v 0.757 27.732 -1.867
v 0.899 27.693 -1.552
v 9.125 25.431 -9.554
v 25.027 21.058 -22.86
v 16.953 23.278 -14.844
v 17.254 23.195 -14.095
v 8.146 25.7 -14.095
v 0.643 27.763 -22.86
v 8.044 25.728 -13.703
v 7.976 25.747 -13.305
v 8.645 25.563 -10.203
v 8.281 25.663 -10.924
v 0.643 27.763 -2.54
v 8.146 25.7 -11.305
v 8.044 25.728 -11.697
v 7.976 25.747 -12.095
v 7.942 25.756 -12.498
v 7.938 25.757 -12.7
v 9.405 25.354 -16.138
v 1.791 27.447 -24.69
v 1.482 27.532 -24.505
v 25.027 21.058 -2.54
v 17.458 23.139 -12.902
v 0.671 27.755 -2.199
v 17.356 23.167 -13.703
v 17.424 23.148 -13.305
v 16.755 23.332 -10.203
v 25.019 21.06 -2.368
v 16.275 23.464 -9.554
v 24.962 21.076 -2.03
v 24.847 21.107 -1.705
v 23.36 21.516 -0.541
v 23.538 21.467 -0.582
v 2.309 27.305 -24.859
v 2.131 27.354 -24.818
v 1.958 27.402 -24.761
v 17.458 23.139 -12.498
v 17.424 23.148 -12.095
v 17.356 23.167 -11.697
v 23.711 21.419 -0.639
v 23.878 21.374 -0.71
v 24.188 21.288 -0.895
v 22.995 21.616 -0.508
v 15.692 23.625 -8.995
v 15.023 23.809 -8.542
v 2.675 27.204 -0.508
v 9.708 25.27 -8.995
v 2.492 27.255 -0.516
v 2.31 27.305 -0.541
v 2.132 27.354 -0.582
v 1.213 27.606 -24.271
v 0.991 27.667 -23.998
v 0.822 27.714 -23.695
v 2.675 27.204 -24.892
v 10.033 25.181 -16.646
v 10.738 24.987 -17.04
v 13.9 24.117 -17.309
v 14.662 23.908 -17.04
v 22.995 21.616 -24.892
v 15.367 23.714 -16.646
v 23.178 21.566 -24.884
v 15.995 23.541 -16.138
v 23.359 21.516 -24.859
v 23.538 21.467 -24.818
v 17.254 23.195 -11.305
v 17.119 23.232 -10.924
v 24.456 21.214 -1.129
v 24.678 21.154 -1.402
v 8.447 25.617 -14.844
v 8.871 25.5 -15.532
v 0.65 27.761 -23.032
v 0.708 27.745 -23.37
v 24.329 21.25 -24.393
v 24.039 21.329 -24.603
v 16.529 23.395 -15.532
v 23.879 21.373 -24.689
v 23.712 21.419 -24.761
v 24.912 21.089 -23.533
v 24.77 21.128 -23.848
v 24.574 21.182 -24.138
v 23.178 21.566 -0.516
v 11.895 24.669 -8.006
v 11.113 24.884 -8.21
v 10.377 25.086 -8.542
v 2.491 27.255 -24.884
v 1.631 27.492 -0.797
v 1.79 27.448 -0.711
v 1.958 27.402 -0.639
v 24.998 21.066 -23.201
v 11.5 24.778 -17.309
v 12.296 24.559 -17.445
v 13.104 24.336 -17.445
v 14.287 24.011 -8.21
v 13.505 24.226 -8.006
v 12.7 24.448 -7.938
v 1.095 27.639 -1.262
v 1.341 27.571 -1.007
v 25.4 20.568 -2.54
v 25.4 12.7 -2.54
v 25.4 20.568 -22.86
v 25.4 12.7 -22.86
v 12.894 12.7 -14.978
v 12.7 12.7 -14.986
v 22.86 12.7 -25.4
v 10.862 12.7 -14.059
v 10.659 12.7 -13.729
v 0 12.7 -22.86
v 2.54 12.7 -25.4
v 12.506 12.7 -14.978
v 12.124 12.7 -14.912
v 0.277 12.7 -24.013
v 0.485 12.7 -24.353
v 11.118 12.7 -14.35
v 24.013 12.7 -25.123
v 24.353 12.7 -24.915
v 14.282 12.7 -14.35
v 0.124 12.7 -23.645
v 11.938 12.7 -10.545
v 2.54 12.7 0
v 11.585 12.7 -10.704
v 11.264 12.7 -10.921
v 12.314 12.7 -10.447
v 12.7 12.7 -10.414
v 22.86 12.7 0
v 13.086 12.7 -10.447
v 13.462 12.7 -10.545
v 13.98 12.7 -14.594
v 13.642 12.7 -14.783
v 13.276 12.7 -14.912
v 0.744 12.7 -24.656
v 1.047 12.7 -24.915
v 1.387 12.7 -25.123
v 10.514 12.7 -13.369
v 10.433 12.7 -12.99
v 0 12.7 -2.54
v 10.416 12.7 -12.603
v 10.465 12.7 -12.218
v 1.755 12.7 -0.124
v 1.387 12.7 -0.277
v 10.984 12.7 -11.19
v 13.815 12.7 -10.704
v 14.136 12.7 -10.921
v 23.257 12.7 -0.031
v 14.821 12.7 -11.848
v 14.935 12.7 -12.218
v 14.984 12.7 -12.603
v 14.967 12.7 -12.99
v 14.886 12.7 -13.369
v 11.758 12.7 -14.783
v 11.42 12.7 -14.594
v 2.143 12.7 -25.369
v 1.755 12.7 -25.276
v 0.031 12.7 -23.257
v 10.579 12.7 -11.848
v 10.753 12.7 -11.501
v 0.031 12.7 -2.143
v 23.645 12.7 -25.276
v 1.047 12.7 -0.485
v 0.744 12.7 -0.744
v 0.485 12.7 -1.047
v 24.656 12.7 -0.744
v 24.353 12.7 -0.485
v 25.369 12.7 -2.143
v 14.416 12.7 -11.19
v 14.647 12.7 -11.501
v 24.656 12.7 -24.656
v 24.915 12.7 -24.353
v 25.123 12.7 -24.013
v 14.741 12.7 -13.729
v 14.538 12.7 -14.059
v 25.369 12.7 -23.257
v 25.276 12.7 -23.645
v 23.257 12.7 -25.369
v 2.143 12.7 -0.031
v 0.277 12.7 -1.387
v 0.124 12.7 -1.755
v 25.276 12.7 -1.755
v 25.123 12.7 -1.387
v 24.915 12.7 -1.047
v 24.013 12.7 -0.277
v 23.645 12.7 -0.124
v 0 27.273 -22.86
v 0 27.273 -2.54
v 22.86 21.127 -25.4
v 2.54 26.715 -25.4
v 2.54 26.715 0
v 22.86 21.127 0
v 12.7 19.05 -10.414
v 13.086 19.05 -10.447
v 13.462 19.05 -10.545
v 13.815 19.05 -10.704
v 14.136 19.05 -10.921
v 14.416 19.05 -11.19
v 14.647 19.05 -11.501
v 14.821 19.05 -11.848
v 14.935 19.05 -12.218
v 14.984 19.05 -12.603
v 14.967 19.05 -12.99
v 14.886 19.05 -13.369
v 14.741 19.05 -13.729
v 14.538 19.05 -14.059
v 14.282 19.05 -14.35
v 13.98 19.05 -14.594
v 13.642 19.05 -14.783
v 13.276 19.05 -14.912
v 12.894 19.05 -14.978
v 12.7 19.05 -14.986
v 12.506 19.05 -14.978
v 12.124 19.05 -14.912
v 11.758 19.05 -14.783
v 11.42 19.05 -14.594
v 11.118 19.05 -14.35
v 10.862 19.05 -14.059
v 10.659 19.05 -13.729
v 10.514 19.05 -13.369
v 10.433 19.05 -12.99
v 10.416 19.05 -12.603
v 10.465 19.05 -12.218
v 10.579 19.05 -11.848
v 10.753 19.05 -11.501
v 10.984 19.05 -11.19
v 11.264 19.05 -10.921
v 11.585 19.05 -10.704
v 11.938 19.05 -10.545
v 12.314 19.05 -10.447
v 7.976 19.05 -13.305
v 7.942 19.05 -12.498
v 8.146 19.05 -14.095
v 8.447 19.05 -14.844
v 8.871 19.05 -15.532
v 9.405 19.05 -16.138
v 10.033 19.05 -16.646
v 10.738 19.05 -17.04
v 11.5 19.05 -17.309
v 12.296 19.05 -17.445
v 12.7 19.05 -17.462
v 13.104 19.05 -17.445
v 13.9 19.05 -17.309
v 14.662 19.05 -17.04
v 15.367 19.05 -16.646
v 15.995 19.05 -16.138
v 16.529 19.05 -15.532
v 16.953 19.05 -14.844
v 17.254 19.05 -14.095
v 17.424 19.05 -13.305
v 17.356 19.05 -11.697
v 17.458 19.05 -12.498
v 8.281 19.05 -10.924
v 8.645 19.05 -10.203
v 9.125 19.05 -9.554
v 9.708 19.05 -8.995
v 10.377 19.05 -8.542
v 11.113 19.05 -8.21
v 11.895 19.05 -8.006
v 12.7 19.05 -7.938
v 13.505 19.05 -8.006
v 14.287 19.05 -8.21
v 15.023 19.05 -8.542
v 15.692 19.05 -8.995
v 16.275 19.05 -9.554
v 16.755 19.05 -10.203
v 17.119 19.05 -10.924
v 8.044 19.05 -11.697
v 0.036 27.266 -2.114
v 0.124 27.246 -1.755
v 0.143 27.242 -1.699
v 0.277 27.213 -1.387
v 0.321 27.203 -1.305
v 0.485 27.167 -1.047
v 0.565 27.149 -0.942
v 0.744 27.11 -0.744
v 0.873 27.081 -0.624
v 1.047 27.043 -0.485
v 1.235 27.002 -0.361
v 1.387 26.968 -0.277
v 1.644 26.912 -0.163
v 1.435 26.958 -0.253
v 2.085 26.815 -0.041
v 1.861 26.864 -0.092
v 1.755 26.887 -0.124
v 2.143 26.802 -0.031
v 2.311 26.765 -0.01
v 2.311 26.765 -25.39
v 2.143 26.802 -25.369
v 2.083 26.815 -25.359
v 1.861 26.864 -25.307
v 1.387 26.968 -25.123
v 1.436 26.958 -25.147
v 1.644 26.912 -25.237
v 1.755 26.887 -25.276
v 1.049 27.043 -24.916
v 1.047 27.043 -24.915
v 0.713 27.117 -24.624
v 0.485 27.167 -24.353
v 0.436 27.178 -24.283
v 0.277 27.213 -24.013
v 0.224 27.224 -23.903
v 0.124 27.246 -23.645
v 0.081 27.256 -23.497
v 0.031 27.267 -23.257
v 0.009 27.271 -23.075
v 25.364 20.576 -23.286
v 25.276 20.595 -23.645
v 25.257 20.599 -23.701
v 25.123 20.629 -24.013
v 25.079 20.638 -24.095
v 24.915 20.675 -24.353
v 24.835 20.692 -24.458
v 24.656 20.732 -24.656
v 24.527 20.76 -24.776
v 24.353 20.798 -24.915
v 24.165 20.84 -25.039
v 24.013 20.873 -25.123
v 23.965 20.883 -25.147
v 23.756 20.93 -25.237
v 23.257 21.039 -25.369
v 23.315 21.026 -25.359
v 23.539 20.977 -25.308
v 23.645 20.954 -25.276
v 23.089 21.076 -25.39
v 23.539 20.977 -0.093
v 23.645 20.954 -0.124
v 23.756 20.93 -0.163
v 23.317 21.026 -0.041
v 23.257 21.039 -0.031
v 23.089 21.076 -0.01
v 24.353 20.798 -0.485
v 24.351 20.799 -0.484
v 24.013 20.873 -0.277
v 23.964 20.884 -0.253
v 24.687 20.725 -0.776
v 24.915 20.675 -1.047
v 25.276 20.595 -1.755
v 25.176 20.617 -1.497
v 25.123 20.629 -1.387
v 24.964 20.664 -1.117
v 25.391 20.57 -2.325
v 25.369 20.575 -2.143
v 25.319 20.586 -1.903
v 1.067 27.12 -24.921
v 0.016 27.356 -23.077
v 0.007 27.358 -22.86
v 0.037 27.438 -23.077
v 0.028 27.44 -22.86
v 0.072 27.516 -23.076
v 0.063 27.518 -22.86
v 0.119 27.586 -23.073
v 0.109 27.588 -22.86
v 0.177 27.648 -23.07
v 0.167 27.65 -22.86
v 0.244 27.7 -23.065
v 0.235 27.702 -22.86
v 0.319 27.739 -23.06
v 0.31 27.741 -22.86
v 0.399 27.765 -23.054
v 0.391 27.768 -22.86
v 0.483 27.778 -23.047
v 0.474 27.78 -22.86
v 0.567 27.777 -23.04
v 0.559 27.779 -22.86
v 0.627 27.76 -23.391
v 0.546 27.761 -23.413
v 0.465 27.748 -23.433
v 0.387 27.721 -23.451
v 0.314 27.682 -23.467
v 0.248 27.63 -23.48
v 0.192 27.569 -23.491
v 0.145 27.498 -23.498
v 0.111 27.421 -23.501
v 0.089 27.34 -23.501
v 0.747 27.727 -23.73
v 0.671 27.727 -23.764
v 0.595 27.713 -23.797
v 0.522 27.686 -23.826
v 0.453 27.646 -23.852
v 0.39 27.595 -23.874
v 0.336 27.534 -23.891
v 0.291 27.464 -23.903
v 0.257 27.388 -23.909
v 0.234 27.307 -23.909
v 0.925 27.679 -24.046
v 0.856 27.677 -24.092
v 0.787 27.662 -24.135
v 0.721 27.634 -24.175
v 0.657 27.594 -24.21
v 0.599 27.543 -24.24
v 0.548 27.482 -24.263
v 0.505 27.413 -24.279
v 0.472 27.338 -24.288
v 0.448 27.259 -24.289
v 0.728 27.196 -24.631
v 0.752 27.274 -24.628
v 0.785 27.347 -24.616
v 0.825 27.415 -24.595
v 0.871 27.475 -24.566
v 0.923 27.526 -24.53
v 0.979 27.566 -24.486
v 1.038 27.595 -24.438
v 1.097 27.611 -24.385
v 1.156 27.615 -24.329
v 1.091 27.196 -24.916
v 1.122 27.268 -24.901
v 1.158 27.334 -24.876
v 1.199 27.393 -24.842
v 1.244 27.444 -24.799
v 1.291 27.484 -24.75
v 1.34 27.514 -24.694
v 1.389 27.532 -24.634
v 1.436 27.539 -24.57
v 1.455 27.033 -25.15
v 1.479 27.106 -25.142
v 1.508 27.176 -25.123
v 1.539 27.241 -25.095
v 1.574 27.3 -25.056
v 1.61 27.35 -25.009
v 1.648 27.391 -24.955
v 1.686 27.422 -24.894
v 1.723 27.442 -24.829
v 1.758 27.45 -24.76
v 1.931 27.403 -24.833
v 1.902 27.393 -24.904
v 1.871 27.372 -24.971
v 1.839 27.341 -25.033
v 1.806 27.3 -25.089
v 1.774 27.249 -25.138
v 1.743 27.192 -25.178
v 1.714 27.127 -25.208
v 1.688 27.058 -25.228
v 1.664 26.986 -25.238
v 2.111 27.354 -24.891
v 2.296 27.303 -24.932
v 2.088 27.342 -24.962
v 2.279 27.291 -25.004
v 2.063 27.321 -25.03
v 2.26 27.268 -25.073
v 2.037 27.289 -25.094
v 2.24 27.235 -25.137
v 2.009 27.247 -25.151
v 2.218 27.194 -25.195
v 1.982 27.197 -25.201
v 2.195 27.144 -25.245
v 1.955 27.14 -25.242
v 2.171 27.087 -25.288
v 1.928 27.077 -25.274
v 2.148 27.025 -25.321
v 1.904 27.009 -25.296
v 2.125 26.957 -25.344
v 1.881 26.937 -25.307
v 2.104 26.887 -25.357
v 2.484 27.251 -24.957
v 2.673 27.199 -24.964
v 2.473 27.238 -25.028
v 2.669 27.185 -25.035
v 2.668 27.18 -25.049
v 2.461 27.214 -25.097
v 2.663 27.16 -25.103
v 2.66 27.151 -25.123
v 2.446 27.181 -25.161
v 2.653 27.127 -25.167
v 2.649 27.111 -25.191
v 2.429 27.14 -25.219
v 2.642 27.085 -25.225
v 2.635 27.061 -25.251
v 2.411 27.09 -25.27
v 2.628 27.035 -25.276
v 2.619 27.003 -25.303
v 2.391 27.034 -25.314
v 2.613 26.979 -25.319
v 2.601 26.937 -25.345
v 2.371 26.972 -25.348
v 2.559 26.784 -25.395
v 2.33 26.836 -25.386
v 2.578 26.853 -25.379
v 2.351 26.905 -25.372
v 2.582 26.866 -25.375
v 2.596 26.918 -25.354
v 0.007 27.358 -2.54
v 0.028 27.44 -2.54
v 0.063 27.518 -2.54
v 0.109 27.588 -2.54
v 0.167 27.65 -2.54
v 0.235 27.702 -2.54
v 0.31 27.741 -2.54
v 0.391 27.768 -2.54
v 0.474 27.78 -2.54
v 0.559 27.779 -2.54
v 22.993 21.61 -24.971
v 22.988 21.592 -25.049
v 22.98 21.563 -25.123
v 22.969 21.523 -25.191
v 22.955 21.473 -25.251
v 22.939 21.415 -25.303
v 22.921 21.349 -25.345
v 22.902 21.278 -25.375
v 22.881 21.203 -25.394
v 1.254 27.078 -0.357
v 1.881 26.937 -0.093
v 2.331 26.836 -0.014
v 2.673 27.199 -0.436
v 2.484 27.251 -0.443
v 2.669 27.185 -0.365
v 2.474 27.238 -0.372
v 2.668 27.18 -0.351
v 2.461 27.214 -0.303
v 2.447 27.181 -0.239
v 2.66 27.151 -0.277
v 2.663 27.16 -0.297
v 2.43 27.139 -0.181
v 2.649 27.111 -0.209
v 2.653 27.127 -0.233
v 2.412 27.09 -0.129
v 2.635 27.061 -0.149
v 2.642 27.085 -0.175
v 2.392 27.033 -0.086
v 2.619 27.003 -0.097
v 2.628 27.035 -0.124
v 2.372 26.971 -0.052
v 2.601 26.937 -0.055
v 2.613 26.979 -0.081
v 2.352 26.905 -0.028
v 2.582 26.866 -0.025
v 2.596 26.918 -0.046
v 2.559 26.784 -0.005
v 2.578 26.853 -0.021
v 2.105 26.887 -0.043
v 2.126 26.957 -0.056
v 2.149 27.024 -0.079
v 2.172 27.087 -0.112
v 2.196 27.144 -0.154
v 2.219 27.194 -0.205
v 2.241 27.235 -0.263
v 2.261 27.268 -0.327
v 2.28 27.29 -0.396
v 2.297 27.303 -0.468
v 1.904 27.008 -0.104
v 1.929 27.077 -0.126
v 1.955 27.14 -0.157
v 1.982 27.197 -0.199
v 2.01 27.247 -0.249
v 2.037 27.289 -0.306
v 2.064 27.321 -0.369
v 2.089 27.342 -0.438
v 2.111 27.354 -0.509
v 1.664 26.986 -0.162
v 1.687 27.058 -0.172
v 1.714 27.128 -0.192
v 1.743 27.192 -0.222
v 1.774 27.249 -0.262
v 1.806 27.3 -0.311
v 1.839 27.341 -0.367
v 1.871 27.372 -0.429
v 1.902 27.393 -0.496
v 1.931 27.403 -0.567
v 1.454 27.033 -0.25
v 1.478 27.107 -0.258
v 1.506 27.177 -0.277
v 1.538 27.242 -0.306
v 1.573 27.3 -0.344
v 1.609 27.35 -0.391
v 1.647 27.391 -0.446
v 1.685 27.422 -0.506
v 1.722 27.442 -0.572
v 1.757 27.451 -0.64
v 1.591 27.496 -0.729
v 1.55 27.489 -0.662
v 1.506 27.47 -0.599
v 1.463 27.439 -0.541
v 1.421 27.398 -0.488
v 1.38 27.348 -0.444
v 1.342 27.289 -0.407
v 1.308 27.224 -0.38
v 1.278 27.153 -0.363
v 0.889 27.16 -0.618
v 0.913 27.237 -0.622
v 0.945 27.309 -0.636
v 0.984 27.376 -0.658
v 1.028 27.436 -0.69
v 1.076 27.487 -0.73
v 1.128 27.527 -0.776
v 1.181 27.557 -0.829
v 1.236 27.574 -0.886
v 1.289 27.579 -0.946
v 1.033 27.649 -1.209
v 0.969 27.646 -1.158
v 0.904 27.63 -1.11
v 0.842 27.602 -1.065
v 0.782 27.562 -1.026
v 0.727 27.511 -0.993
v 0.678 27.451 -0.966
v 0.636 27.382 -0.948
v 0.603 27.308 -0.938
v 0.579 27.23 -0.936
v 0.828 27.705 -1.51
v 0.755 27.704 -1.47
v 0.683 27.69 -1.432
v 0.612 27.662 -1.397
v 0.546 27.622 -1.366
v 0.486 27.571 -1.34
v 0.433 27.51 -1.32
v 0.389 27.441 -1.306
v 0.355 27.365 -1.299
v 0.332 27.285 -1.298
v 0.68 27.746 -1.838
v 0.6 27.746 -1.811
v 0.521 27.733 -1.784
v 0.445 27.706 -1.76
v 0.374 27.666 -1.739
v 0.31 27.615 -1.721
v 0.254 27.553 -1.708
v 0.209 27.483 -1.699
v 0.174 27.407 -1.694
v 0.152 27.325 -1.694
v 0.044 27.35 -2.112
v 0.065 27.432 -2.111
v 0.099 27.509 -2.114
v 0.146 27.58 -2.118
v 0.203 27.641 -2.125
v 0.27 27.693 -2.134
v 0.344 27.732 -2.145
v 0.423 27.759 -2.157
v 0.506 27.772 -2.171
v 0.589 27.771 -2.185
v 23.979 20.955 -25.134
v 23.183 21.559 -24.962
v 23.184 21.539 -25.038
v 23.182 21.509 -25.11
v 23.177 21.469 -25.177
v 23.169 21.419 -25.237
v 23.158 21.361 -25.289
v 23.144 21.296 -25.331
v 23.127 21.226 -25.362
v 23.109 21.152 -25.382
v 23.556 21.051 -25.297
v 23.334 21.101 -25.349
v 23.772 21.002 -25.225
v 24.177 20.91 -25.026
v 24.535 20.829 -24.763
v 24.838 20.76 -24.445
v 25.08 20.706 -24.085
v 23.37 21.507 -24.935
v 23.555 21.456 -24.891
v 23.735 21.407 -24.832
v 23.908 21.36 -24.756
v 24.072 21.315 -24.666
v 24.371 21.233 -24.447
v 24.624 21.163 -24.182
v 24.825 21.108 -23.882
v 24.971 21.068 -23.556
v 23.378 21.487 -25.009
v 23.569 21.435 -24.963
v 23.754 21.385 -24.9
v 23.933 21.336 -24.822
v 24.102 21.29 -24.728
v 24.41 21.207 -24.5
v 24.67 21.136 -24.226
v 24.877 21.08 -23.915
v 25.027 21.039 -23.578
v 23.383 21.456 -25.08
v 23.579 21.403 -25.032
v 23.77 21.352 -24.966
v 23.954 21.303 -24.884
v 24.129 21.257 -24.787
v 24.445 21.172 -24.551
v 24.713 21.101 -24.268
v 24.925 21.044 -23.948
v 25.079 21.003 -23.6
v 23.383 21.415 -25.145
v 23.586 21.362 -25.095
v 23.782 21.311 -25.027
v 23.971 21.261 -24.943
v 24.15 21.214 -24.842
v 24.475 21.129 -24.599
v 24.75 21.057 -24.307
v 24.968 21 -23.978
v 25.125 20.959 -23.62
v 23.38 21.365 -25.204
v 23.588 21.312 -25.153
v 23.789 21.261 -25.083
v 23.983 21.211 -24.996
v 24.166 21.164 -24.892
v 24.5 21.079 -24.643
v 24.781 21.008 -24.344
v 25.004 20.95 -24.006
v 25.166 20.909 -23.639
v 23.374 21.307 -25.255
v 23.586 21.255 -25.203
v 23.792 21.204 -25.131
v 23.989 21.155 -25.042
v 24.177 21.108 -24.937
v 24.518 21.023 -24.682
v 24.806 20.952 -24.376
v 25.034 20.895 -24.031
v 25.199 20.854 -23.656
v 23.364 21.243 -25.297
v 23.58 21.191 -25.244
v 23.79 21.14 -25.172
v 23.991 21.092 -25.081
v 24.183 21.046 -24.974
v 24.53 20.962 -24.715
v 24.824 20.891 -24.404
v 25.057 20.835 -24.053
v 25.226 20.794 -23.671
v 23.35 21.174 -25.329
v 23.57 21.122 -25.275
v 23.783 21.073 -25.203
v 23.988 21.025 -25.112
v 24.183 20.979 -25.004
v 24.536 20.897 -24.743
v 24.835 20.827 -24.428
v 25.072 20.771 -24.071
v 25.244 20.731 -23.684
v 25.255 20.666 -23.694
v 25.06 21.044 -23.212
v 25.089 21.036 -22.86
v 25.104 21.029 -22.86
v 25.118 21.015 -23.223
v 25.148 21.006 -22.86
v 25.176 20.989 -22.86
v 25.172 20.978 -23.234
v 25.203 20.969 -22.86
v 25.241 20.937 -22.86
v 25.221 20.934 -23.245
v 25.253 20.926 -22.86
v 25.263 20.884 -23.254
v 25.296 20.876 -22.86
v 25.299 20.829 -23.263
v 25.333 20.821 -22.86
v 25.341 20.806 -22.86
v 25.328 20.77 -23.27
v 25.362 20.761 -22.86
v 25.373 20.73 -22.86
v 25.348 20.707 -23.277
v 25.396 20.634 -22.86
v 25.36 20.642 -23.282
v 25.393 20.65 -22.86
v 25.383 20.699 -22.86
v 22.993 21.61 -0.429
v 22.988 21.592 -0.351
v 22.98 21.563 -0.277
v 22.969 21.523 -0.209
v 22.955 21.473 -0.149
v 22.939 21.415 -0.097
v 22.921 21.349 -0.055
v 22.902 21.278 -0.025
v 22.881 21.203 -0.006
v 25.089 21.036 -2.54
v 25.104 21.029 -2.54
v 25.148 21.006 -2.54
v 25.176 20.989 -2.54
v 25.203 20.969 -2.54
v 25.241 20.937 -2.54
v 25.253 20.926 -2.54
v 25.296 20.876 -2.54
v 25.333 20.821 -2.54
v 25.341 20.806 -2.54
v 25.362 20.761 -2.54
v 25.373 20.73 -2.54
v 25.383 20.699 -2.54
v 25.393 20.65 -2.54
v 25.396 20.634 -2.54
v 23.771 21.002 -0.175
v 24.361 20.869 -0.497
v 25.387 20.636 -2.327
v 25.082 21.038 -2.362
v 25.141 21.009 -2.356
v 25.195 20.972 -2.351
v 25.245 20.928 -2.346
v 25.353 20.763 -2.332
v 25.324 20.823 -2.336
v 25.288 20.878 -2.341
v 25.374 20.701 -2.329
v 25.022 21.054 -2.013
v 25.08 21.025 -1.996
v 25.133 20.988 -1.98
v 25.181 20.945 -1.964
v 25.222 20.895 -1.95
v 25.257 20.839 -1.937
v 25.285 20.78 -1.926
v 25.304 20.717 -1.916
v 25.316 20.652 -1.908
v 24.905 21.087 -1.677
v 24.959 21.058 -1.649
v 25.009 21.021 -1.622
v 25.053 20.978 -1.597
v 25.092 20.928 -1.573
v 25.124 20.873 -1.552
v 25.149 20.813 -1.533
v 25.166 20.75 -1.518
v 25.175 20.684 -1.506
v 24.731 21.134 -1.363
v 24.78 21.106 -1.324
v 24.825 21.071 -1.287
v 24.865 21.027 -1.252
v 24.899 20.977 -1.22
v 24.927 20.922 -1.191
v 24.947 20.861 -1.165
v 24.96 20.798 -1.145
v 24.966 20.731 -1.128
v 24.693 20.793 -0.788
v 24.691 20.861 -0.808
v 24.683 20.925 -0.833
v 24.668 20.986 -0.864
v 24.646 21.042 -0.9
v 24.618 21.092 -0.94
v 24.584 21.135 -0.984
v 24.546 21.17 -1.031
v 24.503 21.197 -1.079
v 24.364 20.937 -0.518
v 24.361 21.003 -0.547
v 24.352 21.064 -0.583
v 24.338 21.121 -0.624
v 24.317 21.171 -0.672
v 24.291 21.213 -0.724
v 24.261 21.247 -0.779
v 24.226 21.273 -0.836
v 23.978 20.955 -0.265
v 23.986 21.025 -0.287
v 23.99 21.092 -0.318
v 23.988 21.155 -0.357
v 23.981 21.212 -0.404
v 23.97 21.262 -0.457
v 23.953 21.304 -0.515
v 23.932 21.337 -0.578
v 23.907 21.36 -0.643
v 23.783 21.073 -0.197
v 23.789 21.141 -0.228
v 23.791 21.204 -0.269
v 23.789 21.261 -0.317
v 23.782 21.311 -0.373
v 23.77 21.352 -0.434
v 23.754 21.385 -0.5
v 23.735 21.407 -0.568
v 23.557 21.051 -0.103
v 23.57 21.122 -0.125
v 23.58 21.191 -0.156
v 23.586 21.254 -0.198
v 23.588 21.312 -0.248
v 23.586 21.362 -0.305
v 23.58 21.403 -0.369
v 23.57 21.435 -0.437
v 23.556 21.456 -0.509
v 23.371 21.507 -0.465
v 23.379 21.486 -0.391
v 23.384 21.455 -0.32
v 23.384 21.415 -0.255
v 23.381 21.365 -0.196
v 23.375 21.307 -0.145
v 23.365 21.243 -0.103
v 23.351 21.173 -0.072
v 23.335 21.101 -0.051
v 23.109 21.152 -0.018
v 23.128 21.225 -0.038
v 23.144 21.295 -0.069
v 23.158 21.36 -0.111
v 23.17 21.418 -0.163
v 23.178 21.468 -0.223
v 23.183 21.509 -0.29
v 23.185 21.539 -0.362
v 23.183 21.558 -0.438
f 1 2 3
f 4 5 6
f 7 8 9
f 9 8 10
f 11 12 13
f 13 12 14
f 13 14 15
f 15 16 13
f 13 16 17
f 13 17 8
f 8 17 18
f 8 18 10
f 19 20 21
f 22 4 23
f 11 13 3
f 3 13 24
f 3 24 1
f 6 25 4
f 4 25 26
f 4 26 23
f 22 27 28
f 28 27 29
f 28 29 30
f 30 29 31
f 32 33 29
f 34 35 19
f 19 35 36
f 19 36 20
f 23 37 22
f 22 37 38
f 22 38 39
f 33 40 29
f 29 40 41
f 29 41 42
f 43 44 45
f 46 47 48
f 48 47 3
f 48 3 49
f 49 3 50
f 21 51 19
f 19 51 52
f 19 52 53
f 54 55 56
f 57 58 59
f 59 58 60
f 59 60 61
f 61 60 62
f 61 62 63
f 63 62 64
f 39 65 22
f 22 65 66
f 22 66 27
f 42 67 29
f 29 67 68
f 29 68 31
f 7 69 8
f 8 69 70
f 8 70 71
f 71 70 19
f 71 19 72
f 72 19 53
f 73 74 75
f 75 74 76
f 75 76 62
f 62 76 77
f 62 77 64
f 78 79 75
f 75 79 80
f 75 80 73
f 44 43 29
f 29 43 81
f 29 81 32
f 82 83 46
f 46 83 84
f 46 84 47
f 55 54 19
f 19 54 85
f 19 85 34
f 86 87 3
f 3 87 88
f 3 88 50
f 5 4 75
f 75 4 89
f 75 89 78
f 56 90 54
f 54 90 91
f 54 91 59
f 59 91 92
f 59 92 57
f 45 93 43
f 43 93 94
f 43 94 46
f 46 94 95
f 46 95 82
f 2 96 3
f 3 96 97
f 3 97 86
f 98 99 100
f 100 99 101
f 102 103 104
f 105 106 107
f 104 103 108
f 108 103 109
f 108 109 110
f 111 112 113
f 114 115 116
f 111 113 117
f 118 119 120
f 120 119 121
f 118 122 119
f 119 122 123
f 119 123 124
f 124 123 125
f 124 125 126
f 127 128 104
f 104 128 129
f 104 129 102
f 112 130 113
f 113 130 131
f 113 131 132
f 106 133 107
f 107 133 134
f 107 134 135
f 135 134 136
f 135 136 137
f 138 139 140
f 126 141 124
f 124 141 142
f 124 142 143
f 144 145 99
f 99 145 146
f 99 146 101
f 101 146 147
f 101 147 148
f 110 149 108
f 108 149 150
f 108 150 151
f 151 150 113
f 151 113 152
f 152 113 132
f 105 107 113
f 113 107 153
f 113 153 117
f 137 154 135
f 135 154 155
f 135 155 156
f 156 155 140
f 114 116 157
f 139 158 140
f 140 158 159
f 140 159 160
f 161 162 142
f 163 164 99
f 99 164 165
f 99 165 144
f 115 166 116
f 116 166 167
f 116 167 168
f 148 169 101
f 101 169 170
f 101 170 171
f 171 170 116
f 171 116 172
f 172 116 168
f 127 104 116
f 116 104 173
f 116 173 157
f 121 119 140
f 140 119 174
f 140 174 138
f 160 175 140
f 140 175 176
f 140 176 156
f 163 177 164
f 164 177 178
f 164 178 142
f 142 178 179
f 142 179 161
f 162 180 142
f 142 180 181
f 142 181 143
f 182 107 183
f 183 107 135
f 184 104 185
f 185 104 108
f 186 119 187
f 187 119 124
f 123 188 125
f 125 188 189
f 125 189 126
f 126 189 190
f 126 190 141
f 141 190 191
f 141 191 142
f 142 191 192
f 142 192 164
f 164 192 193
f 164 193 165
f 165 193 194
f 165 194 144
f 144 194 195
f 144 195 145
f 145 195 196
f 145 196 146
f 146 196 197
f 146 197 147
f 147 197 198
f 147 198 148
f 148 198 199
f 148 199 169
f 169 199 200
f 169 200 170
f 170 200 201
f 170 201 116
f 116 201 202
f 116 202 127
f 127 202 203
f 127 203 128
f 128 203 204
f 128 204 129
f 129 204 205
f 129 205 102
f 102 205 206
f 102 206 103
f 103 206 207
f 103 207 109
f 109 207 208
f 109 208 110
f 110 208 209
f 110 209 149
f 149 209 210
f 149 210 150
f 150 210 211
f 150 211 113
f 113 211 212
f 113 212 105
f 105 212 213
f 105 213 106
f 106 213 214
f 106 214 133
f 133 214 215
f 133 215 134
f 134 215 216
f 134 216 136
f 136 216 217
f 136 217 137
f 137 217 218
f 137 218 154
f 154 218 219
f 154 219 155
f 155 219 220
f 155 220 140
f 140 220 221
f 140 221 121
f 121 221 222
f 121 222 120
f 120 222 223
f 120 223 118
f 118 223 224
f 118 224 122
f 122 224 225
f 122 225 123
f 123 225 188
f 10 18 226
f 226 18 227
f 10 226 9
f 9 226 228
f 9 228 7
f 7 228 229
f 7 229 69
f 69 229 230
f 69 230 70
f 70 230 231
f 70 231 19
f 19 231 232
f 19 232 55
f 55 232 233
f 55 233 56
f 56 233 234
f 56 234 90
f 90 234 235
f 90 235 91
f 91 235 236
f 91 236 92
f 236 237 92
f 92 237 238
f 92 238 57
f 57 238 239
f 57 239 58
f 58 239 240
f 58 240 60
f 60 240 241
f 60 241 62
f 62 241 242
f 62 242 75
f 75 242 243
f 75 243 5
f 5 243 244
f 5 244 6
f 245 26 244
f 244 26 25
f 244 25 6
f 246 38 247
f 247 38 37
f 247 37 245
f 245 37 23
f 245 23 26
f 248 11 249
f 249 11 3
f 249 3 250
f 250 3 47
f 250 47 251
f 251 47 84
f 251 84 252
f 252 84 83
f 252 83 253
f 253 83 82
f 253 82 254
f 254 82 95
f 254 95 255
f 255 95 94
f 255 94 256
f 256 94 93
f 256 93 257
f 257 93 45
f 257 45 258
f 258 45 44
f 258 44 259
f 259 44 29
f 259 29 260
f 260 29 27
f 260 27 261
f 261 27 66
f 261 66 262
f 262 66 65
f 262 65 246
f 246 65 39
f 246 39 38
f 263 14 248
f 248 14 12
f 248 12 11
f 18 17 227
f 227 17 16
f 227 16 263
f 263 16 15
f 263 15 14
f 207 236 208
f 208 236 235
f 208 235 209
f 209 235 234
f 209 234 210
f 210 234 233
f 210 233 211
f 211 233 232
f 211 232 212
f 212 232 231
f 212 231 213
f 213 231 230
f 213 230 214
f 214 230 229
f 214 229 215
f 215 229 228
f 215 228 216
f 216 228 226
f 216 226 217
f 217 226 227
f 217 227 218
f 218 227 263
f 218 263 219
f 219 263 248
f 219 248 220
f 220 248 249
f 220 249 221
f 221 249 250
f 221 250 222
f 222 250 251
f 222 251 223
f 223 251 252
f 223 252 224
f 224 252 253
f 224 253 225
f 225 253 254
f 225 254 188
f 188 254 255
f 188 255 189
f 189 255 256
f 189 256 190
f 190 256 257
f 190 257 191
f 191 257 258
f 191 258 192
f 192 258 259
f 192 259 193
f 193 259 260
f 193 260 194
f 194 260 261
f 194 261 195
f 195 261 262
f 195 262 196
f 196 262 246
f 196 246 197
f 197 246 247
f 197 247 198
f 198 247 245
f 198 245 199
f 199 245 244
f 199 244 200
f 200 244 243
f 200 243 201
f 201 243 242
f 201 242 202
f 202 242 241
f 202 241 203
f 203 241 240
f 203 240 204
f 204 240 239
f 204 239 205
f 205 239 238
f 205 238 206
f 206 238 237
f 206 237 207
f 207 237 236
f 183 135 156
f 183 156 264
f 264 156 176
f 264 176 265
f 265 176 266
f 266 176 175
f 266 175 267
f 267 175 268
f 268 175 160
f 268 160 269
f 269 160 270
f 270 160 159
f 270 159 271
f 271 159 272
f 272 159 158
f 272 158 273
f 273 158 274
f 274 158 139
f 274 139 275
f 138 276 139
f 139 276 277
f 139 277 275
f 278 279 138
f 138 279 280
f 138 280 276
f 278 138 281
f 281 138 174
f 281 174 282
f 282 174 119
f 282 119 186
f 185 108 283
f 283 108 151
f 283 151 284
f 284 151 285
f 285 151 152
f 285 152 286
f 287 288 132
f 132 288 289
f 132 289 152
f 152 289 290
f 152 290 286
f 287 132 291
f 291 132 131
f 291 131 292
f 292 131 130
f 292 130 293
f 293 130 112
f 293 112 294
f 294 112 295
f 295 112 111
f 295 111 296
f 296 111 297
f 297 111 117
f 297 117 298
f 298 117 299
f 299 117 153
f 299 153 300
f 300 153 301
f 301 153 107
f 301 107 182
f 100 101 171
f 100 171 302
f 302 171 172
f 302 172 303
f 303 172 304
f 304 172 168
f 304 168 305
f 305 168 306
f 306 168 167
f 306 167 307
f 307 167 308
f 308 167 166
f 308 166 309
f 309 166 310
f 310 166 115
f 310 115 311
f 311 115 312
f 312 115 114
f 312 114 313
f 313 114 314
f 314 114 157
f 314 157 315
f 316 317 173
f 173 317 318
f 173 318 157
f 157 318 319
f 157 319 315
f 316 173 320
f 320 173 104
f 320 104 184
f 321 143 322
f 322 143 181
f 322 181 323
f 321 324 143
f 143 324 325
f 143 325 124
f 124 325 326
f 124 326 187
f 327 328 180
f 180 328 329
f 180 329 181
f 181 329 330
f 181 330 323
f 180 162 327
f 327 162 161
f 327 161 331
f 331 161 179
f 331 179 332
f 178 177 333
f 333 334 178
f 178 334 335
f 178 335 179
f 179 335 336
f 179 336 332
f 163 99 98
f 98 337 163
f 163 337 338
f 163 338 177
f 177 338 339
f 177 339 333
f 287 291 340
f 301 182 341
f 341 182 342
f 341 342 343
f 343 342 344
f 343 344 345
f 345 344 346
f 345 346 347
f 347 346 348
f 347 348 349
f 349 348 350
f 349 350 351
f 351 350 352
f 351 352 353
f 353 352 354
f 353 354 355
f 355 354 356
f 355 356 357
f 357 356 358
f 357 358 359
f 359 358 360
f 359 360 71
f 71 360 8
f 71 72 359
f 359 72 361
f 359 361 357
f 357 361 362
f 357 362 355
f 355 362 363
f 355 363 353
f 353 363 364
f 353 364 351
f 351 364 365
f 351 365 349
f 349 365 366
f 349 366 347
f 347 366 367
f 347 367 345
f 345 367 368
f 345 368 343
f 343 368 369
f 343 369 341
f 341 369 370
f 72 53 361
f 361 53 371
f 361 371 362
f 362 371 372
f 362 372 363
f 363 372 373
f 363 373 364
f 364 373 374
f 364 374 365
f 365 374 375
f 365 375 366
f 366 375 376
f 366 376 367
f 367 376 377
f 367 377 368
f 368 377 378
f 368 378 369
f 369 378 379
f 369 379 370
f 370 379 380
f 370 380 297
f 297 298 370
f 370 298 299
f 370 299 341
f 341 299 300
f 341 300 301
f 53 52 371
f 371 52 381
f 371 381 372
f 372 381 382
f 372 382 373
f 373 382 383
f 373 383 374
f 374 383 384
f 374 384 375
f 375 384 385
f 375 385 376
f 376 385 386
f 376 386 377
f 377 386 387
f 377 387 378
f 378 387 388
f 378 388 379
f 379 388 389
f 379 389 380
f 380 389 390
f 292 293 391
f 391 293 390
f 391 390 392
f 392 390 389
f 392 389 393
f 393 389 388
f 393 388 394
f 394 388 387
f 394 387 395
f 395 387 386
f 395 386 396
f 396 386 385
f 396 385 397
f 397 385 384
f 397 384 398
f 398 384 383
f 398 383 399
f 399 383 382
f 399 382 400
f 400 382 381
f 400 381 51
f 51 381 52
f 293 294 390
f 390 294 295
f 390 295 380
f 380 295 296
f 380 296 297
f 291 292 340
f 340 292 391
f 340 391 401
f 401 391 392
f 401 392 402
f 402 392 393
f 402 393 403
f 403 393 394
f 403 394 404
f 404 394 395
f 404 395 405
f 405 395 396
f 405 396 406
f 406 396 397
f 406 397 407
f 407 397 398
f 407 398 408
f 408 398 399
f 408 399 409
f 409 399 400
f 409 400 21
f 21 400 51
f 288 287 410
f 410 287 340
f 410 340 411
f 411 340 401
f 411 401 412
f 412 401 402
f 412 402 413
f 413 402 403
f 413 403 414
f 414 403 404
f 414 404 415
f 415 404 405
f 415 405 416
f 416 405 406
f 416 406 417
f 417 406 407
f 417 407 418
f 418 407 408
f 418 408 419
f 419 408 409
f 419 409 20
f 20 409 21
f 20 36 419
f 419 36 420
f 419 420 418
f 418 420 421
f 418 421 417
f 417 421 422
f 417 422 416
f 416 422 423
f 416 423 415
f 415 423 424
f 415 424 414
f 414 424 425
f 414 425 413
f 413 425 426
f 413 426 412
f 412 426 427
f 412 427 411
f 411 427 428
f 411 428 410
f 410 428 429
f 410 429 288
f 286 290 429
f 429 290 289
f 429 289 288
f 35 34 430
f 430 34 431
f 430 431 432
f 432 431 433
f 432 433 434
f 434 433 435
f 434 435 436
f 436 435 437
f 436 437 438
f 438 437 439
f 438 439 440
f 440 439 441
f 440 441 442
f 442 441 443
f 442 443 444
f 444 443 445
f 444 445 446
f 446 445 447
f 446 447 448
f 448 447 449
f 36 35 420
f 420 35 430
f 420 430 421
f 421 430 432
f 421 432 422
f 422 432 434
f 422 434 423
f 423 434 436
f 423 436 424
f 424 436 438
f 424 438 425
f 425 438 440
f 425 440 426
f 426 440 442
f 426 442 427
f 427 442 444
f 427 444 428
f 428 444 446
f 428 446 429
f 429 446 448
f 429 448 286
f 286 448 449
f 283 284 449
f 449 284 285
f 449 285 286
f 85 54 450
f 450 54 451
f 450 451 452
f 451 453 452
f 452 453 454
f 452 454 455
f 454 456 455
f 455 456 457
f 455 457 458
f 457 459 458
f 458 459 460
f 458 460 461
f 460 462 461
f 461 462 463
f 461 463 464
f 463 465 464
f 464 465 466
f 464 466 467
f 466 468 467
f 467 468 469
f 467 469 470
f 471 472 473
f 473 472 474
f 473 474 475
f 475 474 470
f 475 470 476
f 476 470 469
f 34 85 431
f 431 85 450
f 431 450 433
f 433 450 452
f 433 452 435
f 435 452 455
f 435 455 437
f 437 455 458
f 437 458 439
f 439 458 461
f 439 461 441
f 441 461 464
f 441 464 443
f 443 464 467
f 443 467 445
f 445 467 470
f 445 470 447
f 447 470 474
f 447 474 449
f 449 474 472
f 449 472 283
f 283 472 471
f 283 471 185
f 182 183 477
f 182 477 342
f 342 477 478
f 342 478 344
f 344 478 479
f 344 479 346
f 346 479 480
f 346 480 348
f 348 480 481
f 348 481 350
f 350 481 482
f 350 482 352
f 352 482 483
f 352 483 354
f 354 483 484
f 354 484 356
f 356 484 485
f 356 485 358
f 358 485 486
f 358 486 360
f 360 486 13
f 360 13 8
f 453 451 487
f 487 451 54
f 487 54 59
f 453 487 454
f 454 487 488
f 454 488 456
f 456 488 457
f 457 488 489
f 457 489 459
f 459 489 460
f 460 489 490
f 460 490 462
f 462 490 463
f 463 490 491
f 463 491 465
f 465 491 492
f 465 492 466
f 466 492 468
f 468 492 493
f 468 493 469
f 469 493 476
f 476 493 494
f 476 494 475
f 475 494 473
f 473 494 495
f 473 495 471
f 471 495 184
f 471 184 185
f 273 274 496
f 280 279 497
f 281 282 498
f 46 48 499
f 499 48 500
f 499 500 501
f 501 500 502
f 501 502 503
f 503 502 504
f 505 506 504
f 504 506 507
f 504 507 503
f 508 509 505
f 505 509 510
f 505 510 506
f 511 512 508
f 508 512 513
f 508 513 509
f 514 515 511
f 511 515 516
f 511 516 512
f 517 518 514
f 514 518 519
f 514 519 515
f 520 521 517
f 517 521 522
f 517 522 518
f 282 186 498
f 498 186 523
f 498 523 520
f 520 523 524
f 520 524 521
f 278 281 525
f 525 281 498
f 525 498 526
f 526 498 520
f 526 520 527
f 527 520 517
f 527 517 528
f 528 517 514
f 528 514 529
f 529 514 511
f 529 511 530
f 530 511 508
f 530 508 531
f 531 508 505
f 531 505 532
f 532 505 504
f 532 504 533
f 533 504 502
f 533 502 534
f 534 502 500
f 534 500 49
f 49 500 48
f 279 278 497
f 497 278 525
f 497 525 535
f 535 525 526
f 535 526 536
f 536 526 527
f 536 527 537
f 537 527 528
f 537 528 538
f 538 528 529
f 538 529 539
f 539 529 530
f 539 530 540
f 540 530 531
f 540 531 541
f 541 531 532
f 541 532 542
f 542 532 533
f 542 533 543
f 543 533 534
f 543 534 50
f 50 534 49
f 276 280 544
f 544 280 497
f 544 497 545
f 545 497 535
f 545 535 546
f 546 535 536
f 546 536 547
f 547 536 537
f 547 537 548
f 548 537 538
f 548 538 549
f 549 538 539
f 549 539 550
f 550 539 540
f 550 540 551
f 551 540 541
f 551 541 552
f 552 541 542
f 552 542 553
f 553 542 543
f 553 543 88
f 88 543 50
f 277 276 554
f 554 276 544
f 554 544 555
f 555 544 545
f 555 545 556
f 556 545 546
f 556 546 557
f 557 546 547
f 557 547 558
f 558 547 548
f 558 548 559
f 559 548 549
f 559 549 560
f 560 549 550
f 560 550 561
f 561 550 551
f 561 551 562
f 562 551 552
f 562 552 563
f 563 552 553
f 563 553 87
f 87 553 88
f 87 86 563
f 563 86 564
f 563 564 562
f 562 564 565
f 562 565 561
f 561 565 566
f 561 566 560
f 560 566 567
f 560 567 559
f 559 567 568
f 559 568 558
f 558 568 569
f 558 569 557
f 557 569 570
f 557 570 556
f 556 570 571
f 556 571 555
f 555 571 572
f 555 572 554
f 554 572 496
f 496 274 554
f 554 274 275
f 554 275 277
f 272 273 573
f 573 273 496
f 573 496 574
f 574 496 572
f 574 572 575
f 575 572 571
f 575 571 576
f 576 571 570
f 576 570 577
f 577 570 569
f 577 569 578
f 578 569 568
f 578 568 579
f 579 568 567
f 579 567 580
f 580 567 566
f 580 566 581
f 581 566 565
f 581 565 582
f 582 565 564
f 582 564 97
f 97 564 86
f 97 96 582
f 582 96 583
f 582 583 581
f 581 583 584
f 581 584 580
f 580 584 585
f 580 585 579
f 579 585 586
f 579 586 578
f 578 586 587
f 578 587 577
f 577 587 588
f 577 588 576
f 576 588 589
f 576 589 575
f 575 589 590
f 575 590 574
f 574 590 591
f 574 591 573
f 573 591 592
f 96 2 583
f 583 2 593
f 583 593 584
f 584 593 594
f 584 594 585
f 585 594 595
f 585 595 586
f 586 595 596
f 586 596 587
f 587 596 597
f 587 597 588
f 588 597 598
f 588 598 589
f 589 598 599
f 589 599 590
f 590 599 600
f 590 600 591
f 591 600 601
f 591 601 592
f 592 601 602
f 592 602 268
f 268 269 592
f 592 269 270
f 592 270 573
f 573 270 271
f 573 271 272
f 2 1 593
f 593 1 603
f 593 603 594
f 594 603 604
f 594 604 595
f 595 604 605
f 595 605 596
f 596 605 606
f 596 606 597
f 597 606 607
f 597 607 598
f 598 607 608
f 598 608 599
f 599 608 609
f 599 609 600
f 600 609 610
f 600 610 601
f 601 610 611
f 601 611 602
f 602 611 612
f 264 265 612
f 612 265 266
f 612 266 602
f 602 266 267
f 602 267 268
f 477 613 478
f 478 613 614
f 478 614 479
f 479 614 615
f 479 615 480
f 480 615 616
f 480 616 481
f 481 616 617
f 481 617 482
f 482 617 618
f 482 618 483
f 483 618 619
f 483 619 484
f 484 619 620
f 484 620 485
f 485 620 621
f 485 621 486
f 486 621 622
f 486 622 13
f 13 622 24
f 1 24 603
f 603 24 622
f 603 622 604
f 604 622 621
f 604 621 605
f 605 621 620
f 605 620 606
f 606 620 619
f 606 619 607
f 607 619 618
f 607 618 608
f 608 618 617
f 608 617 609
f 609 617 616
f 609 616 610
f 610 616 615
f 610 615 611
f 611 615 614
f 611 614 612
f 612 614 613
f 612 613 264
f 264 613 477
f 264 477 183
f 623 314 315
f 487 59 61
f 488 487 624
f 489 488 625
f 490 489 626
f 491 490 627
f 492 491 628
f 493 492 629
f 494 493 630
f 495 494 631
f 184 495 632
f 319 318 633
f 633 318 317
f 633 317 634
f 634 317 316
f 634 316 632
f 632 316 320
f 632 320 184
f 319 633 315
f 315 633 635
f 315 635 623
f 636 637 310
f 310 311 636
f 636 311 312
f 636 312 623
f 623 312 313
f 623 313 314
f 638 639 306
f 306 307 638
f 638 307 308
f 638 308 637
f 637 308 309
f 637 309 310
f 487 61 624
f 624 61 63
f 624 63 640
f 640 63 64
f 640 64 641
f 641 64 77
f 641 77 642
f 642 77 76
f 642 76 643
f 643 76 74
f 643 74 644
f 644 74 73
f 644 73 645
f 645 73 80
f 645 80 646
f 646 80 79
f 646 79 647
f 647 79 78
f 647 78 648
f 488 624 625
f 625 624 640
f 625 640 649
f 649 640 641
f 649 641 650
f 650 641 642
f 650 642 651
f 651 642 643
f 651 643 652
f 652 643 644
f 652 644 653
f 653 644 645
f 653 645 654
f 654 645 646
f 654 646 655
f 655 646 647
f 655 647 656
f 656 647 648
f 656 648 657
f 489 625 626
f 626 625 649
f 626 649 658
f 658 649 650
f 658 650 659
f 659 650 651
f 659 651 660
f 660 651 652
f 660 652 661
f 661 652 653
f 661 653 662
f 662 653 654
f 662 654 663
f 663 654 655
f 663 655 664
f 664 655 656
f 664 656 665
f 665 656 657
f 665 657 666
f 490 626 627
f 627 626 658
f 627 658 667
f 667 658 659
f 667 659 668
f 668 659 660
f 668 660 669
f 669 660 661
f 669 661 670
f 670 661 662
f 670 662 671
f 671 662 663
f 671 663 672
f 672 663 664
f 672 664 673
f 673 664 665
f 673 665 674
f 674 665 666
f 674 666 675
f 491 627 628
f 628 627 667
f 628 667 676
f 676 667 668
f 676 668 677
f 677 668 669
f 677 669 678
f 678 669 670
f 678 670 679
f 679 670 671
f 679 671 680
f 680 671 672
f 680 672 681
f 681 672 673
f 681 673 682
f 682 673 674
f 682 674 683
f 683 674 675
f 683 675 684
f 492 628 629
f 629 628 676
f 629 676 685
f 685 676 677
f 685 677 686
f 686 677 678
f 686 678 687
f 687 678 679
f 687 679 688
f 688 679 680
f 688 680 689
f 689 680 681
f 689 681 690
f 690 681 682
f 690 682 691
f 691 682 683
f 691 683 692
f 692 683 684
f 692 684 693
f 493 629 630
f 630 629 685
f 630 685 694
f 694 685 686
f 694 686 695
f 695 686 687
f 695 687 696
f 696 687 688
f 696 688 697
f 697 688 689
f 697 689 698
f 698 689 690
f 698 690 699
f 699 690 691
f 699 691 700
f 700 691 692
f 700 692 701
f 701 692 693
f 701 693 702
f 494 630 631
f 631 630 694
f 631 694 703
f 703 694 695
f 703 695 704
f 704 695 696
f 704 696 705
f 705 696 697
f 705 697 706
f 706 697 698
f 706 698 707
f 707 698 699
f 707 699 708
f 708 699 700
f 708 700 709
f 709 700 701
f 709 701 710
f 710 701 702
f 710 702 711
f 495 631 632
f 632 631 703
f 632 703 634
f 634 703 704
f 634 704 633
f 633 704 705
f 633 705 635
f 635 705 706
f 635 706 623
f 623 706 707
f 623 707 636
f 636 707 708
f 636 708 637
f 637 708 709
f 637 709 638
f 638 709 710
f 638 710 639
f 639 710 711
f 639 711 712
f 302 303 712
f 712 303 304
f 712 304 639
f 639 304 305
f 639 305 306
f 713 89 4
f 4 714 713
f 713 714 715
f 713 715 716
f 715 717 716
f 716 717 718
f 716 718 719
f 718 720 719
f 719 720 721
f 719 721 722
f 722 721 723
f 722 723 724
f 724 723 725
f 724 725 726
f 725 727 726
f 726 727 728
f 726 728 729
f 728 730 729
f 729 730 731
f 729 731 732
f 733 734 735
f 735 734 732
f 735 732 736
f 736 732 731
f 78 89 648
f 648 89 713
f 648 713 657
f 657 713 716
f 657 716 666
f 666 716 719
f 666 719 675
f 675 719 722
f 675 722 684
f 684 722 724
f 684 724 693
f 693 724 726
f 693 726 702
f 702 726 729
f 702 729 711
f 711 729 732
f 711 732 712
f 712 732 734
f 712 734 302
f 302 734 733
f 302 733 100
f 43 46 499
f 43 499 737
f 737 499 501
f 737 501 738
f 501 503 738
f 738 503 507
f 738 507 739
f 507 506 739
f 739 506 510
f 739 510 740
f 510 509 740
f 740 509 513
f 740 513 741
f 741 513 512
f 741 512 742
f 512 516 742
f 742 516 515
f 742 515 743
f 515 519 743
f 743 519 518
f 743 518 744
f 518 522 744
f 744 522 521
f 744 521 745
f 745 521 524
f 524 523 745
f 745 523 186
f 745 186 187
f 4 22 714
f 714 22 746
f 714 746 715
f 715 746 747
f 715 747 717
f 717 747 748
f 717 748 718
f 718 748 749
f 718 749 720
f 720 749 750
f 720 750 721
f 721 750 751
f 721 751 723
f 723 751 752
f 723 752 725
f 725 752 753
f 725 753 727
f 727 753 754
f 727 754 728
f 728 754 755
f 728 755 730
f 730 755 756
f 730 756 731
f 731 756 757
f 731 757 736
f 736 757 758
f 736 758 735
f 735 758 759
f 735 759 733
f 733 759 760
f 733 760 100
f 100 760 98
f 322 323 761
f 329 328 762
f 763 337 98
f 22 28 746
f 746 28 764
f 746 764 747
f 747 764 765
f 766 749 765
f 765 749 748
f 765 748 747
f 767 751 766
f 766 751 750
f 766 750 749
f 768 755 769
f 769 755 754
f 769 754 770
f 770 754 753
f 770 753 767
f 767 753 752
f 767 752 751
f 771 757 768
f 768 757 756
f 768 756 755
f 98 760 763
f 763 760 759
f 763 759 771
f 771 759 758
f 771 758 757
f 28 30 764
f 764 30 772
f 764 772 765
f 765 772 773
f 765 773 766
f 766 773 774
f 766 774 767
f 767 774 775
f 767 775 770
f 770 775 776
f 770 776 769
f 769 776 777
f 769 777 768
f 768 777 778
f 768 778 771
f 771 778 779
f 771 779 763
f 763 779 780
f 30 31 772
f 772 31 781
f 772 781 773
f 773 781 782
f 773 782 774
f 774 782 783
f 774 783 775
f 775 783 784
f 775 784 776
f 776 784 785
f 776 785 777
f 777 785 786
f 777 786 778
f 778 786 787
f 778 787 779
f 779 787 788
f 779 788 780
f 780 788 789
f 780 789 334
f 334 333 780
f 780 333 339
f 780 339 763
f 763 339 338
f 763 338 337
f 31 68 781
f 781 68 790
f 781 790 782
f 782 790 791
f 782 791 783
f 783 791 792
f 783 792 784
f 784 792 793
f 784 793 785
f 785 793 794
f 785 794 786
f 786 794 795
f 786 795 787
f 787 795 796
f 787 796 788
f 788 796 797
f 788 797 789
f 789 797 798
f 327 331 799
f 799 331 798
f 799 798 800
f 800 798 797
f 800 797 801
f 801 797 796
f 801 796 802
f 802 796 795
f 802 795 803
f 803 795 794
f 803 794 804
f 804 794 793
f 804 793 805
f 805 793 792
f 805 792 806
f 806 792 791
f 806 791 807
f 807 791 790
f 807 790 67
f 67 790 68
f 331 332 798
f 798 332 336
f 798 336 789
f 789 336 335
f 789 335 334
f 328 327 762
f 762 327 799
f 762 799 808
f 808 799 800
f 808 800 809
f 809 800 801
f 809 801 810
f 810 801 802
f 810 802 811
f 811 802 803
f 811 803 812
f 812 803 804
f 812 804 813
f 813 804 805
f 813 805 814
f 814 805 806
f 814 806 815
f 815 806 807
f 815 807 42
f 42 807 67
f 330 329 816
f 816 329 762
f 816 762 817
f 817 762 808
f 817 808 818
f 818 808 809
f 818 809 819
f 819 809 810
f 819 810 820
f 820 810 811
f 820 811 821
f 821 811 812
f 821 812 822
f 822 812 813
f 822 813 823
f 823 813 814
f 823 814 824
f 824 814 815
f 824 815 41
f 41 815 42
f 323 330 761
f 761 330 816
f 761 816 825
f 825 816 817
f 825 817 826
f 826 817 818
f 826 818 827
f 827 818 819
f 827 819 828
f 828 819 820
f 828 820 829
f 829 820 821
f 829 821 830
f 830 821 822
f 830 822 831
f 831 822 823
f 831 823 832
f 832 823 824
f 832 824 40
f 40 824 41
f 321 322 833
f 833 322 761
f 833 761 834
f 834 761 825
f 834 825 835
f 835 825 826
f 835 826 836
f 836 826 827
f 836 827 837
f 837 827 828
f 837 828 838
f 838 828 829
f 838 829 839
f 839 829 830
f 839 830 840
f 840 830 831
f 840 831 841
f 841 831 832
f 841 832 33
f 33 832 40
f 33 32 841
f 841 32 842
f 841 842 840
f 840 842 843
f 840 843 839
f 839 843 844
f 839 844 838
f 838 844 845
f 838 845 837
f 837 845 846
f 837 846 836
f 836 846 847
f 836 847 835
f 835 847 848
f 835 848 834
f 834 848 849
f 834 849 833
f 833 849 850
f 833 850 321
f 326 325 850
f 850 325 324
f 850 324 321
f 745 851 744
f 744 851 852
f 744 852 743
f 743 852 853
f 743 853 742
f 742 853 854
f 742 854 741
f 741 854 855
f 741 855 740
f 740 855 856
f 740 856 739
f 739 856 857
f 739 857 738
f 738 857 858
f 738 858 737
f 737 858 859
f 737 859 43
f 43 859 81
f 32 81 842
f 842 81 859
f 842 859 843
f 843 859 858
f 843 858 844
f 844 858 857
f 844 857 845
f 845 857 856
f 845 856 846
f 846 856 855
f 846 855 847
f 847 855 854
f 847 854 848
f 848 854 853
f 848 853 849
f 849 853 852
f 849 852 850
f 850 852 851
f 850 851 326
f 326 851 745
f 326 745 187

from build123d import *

# Parameters (mm, degrees)
BOSS_EXTRUDE1_DEPTH = 25.4
CUT_EXTRUDE1_DEPTH  = 44.994090512
CUT_EXTRUDE2_DEPTH  = 19.05
FILLET1_R           = 2.54
FILLET2_R           = 0.508


with BuildPart() as part:
    # Sketch1 → Boss-Extrude1 (new body)
    with BuildSketch(Plane.XY):
        Polygon((0, 27.94), (0, 12.7), (25.4, 12.7), (25.4, 20.955), align=None)
    extrude(amount=-BOSS_EXTRUDE1_DEPTH)

    # Sketch2 → Cut-Extrude1 (cut, through all)
    with BuildSketch(Plane(origin=(0, 38.1, 0), x_dir=(-1, 0, 0), z_dir=(0, -1, 0))):
        with BuildLine():
            ThreePointArc((-10.414, 12.7), (-11.825185674, 14.811988611), (-14.316446102, 14.316446102))
            Line((-14.316446102, 14.316446102), (-11.083553898, 11.083553898))
            ThreePointArc((-11.083553898, 11.083553898), (-10.588011389, 11.825185674), (-10.414, 12.7))
        make_face()
        with BuildLine():
            Line((-11.083553898, 11.083553898), (-14.316446102, 14.316446102))
            ThreePointArc((-14.316446102, 14.316446102), (-14.316446102, 11.083553898), (-11.083553898, 11.083553898))
        make_face()
    extrude(amount=CUT_EXTRUDE1_DEPTH, mode=Mode.SUBTRACT)

    # Sketch2<3> → Cut-Extrude2 (cut)
    with BuildSketch(Plane(origin=(0, 38.1, 0), x_dir=(-1, 0, 0), z_dir=(0, -1, 0))):
        with BuildLine():
            ThreePointArc((-7.9375, 12.7), (-10.877470153, 17.099976274), (-16.067596045, 16.067596045))
            Line((-16.067596045, 16.067596045), (-14.316446102, 14.316446102))
            ThreePointArc((-14.316446102, 14.316446102), (-11.825185674, 14.811988611), (-10.414, 12.7))
            ThreePointArc((-10.414, 12.7), (-10.588011389, 11.825185674), (-11.083553898, 11.083553898))
            Line((-11.083553898, 11.083553898), (-9.332403955, 9.332403955))
            ThreePointArc((-9.332403955, 9.332403955), (-8.300023726, 10.877470153), (-7.9375, 12.7))
        make_face()
        with BuildLine():
            Line((-14.316446102, 14.316446102), (-16.067596045, 16.067596045))
            ThreePointArc((-16.067596045, 16.067596045), (-16.067596045, 9.332403955), (-9.332403955, 9.332403955))
            Line((-9.332403955, 9.332403955), (-11.083553898, 11.083553898))
            ThreePointArc((-11.083553898, 11.083553898), (-14.316446102, 11.083553898), (-14.316446102, 14.316446102))
        make_face()
    extrude(amount=CUT_EXTRUDE2_DEPTH, mode=Mode.SUBTRACT)

    # Fillet1
    fillet1_edges = [part.edges().sort_by_distance(p)[0] for p in [
        (25.4, 16.8275, -25.4),
        (25.4, 16.8275, 0),
        (0, 20.32, 0),
        (0, 20.32, -25.4),
    ]]
    fillet(fillet1_edges, radius=FILLET1_R)

    # Fillet2
    fillet2_edges = [part.edges().sort_by_distance(p)[0] for p in [
        (12.7, 24.4475, 0),
        (0, 27.94, -12.7),
        (25.4, 20.955, -12.7),
        (12.7, 24.4475, -25.4),
        (24.639618159, 21.164105006, -0.727664709),
        (24.639618159, 21.164105006, -24.672335291),
        (0.760381841, 27.730894994, -24.672335291),
        (0.760381841, 27.730894994, -0.727664709),
    ]]
    fillet(fillet2_edges, radius=FILLET2_R)


solid = part.part
